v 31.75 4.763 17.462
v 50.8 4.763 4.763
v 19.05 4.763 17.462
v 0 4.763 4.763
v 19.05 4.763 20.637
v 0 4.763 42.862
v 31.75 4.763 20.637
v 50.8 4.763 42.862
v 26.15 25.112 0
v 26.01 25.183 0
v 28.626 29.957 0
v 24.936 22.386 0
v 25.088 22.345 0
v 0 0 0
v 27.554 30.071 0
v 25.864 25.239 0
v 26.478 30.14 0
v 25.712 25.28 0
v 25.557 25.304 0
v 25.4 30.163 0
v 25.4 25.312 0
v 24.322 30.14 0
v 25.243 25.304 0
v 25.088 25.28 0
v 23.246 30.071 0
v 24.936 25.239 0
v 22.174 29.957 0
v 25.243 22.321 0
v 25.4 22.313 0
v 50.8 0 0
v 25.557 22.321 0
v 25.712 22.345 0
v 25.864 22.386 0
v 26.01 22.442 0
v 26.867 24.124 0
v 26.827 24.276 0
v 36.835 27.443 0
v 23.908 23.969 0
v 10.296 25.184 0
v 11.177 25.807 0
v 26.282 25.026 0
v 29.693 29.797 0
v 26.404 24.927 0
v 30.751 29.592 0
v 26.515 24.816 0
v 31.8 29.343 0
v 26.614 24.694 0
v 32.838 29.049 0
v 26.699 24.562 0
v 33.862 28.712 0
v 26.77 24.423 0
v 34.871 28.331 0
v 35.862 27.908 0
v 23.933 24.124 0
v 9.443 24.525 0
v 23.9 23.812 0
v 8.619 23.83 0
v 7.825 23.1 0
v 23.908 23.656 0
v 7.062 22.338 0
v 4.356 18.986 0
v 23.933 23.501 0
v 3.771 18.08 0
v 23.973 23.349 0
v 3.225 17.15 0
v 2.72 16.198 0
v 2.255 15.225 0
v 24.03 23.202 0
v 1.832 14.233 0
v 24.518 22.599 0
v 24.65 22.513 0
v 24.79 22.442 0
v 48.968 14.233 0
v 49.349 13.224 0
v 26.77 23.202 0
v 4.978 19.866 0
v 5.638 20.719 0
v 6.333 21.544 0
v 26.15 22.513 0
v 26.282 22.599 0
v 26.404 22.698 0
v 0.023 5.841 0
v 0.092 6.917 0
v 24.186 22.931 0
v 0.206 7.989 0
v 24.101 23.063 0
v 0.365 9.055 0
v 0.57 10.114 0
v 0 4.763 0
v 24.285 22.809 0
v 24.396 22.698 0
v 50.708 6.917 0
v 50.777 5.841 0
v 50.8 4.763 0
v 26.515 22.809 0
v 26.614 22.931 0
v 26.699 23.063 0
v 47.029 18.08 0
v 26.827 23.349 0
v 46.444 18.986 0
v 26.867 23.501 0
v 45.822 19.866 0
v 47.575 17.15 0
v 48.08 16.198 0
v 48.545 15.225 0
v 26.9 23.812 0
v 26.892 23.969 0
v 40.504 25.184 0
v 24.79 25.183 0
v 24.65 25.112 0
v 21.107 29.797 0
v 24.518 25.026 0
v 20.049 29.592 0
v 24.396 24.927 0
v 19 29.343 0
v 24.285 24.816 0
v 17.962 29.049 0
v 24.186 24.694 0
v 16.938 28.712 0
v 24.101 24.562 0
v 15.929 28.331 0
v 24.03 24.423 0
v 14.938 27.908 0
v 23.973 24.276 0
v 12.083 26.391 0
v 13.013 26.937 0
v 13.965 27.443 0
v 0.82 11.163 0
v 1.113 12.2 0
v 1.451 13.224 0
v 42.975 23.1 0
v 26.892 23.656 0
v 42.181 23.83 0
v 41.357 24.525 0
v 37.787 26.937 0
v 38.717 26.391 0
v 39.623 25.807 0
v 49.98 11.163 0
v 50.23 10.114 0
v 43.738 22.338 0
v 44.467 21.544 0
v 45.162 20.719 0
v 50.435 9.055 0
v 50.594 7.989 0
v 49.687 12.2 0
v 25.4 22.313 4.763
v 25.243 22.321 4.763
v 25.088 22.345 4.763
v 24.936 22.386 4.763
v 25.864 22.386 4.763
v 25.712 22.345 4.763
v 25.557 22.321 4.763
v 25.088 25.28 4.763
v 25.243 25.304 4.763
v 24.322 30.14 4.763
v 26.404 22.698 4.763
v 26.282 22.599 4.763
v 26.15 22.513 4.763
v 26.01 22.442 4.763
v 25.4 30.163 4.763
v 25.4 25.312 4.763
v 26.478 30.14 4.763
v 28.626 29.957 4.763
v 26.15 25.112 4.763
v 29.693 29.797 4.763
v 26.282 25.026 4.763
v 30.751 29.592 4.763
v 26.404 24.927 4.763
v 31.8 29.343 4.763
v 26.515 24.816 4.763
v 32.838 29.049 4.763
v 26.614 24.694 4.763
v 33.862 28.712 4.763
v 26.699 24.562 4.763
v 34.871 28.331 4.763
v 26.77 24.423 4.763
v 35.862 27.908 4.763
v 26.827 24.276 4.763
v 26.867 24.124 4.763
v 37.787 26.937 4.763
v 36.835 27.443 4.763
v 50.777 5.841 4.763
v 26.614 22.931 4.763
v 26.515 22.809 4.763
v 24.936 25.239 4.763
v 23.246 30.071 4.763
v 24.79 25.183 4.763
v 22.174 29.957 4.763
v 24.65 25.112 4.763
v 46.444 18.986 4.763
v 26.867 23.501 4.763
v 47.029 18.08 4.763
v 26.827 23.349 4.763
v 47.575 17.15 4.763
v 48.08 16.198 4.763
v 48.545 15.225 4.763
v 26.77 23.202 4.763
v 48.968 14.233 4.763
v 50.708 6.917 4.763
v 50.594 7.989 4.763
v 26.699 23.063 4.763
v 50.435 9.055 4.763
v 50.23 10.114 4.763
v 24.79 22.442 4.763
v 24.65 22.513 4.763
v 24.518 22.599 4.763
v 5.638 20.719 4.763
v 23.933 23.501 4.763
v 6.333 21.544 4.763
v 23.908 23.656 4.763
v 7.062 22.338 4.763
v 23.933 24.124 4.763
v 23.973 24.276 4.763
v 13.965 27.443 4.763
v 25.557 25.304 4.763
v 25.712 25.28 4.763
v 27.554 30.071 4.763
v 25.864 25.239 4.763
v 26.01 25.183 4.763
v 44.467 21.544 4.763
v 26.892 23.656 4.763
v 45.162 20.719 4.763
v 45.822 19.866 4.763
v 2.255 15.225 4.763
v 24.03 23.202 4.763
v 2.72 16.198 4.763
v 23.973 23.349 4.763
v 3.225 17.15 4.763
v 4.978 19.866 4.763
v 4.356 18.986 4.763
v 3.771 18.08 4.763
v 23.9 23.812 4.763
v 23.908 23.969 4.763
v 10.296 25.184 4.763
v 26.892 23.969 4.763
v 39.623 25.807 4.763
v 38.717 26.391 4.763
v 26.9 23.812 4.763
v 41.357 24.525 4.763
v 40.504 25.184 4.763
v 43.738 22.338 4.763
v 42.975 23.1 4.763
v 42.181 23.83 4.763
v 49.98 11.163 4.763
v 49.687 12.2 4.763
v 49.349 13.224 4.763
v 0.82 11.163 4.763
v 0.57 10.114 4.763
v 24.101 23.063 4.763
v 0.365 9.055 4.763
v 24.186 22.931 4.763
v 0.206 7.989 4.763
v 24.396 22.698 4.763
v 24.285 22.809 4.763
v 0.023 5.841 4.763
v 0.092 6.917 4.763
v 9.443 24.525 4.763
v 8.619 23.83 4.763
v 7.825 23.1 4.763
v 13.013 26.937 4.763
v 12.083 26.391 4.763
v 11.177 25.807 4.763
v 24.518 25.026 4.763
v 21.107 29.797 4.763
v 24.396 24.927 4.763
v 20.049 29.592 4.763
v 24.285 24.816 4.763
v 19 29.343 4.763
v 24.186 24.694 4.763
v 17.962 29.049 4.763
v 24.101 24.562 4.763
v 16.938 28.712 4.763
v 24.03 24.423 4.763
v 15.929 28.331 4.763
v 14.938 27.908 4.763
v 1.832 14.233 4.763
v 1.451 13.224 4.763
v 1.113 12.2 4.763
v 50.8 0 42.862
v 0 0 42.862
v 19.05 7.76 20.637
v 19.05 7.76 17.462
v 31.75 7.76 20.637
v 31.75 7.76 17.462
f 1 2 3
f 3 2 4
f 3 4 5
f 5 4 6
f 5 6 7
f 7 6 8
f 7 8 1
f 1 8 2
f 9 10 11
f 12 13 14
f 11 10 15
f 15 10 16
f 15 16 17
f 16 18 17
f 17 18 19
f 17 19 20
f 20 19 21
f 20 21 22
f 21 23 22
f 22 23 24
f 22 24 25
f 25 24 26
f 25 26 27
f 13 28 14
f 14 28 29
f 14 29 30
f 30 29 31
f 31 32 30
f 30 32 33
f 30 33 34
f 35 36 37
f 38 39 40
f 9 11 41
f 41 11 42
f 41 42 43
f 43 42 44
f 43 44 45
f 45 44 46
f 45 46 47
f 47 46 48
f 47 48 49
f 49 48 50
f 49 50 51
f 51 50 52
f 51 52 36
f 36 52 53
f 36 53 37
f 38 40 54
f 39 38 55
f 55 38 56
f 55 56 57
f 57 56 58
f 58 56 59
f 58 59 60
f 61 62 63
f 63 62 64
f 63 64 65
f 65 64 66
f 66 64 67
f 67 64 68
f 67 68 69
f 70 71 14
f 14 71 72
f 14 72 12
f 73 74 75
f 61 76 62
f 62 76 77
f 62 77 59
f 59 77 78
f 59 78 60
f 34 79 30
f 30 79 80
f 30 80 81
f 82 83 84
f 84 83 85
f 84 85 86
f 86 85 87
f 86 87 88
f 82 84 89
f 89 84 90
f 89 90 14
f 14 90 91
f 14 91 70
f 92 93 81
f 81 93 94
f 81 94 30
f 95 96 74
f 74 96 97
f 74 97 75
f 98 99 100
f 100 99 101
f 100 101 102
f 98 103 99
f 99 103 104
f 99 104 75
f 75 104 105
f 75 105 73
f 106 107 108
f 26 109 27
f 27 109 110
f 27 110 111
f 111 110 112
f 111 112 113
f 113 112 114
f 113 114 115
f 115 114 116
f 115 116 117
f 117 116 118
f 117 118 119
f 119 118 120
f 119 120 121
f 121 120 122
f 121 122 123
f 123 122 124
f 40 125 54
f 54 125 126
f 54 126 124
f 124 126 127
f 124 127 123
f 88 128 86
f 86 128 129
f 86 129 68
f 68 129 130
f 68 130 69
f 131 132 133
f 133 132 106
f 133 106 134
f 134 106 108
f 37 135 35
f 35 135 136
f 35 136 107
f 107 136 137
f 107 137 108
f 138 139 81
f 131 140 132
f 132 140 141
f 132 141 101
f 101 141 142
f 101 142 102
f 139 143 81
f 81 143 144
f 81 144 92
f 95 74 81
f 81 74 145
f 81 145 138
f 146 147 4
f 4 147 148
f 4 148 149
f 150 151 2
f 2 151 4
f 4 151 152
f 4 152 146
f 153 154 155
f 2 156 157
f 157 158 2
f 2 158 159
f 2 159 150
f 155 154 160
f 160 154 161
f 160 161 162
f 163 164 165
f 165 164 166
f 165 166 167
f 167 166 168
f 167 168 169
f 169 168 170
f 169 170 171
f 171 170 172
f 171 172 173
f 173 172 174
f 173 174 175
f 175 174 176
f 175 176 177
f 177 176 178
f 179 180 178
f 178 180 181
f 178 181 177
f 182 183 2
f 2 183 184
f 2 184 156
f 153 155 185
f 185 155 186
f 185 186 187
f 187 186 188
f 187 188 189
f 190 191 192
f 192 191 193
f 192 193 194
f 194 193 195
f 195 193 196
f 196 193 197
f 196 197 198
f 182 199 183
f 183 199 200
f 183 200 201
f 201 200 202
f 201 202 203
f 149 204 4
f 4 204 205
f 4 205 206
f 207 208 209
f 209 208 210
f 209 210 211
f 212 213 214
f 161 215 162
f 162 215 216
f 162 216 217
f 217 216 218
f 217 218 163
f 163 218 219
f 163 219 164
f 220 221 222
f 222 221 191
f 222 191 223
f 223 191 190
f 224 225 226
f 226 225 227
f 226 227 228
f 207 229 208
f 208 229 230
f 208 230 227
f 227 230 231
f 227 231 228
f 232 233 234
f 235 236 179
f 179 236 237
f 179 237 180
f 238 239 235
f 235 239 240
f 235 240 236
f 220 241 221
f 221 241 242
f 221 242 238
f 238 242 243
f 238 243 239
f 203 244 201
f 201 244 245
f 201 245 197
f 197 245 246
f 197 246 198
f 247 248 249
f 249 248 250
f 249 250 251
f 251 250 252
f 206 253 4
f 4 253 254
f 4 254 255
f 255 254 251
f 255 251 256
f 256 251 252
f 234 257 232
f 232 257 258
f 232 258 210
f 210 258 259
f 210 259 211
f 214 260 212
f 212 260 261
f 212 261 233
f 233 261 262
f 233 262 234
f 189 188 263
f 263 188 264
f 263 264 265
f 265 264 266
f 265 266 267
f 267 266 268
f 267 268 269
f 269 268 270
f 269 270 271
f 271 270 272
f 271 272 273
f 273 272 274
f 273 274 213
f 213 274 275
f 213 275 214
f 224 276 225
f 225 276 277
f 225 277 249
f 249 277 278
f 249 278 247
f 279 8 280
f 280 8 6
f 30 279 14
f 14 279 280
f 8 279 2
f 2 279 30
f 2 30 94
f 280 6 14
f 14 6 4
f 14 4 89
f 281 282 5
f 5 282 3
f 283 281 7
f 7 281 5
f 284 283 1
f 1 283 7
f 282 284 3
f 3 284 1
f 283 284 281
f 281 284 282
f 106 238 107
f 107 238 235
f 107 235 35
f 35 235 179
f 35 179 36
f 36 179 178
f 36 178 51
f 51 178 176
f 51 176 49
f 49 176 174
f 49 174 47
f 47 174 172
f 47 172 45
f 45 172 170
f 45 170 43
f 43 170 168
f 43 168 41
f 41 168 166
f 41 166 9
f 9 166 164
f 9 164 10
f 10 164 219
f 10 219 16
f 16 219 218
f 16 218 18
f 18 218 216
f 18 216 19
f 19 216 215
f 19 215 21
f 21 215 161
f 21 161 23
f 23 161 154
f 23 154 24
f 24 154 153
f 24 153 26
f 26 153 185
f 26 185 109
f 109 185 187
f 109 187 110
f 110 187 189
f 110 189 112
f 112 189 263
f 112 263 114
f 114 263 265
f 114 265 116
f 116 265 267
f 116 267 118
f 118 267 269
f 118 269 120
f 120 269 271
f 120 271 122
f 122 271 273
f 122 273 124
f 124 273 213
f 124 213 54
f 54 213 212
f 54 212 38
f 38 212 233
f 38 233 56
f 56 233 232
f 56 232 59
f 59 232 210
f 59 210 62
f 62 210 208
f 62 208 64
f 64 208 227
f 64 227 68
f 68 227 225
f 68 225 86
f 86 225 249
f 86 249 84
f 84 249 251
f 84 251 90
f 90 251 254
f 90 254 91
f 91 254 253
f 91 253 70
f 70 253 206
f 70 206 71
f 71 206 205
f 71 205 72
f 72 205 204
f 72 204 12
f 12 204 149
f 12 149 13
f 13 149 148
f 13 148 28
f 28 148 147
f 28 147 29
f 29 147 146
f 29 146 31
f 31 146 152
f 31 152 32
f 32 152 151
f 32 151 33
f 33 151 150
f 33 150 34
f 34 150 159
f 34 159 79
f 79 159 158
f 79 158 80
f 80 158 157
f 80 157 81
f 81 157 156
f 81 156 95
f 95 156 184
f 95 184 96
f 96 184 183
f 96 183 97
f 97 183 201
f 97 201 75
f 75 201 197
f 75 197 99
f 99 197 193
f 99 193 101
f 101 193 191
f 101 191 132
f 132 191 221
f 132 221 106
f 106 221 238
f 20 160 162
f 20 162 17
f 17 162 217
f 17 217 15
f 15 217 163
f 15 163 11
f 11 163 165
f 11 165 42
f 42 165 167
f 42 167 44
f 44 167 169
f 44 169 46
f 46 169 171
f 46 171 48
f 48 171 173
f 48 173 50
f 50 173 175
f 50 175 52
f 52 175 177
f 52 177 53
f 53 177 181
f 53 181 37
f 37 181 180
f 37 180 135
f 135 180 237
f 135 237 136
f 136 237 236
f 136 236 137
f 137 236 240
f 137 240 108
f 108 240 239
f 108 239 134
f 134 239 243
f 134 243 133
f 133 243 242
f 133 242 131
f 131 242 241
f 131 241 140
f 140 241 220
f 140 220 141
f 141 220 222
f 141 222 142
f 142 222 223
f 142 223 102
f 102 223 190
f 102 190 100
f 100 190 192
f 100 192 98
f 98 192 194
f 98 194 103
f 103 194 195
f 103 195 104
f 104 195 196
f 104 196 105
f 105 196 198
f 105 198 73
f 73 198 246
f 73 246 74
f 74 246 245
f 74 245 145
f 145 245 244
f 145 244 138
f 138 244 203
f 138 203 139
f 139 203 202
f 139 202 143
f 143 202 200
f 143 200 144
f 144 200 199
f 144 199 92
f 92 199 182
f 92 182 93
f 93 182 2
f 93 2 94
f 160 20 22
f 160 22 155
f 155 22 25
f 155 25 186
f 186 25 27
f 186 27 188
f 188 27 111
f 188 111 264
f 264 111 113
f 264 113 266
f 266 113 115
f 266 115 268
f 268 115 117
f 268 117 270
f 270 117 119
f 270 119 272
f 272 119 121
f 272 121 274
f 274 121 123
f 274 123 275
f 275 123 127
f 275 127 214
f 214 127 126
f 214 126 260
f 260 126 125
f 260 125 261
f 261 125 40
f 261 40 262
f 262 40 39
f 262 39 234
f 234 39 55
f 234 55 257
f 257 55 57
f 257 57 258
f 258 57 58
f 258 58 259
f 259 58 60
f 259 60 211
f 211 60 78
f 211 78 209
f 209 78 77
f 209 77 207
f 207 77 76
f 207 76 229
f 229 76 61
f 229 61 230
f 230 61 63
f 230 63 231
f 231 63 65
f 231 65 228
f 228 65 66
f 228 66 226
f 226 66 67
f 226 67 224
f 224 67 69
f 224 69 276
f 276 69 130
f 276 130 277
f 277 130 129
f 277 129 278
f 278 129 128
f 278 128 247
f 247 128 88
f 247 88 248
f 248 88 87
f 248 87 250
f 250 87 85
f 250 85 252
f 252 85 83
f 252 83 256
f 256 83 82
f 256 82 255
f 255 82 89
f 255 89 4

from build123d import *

# Parameters (mm, degrees)
BOSS_EXTRUDE1_DEPTH = 50.8
SKETCH2_W           = 12.7
SKETCH2_H           = 3.175
BOSS_EXTRUDE2_DEPTH = 2.9972
SKETCH3_R           = 1.499997
CUT_EXTRUDE1_DEPTH  = 71.299547696
FILLET1_R           = 25.4


with BuildPart() as part:
    # Sketch1 → Boss-Extrude1 (new body)
    with BuildSketch(Plane(origin=(0, 0, 0), x_dir=(0, 0, -1), z_dir=(1, 0, 0))):
        Polygon((0, 0), (-42.8625, 0), (-42.8625, 4.7625), (-4.7625, 4.7625), (-4.7625, 30.1625), (0, 30.1625), align=None)
    extrude(amount=BOSS_EXTRUDE1_DEPTH)

    # Sketch2 → Boss-Extrude2 (add)
    with BuildSketch(Plane(origin=(0, 4.7625, 0), x_dir=(1, 0, 0), z_dir=(0, 1, 0))):
        with Locations((25.4, -19.05)):
            Rectangle(SKETCH2_W, SKETCH2_H)
    extrude(amount=BOSS_EXTRUDE2_DEPTH)

    # Sketch3 → Cut-Extrude1 (cut, through all)
    with BuildSketch(Plane.XY.offset(4.7625)):
        with Locations((25.4, 23.8125)):
            Circle(SKETCH3_R)
    extrude(amount=-CUT_EXTRUDE1_DEPTH, mode=Mode.SUBTRACT)

    # Fillet1
    fillet1_edges = [part.edges().sort_by_distance(p)[0] for p in [
        (0, 30.1625, 2.38125),
        (50.8, 30.1625, 2.38125),
    ]]
    fillet(fillet1_edges, radius=FILLET1_R - 0.0001)  # a hair under: the kernel refuses the full size


solid = part.part
